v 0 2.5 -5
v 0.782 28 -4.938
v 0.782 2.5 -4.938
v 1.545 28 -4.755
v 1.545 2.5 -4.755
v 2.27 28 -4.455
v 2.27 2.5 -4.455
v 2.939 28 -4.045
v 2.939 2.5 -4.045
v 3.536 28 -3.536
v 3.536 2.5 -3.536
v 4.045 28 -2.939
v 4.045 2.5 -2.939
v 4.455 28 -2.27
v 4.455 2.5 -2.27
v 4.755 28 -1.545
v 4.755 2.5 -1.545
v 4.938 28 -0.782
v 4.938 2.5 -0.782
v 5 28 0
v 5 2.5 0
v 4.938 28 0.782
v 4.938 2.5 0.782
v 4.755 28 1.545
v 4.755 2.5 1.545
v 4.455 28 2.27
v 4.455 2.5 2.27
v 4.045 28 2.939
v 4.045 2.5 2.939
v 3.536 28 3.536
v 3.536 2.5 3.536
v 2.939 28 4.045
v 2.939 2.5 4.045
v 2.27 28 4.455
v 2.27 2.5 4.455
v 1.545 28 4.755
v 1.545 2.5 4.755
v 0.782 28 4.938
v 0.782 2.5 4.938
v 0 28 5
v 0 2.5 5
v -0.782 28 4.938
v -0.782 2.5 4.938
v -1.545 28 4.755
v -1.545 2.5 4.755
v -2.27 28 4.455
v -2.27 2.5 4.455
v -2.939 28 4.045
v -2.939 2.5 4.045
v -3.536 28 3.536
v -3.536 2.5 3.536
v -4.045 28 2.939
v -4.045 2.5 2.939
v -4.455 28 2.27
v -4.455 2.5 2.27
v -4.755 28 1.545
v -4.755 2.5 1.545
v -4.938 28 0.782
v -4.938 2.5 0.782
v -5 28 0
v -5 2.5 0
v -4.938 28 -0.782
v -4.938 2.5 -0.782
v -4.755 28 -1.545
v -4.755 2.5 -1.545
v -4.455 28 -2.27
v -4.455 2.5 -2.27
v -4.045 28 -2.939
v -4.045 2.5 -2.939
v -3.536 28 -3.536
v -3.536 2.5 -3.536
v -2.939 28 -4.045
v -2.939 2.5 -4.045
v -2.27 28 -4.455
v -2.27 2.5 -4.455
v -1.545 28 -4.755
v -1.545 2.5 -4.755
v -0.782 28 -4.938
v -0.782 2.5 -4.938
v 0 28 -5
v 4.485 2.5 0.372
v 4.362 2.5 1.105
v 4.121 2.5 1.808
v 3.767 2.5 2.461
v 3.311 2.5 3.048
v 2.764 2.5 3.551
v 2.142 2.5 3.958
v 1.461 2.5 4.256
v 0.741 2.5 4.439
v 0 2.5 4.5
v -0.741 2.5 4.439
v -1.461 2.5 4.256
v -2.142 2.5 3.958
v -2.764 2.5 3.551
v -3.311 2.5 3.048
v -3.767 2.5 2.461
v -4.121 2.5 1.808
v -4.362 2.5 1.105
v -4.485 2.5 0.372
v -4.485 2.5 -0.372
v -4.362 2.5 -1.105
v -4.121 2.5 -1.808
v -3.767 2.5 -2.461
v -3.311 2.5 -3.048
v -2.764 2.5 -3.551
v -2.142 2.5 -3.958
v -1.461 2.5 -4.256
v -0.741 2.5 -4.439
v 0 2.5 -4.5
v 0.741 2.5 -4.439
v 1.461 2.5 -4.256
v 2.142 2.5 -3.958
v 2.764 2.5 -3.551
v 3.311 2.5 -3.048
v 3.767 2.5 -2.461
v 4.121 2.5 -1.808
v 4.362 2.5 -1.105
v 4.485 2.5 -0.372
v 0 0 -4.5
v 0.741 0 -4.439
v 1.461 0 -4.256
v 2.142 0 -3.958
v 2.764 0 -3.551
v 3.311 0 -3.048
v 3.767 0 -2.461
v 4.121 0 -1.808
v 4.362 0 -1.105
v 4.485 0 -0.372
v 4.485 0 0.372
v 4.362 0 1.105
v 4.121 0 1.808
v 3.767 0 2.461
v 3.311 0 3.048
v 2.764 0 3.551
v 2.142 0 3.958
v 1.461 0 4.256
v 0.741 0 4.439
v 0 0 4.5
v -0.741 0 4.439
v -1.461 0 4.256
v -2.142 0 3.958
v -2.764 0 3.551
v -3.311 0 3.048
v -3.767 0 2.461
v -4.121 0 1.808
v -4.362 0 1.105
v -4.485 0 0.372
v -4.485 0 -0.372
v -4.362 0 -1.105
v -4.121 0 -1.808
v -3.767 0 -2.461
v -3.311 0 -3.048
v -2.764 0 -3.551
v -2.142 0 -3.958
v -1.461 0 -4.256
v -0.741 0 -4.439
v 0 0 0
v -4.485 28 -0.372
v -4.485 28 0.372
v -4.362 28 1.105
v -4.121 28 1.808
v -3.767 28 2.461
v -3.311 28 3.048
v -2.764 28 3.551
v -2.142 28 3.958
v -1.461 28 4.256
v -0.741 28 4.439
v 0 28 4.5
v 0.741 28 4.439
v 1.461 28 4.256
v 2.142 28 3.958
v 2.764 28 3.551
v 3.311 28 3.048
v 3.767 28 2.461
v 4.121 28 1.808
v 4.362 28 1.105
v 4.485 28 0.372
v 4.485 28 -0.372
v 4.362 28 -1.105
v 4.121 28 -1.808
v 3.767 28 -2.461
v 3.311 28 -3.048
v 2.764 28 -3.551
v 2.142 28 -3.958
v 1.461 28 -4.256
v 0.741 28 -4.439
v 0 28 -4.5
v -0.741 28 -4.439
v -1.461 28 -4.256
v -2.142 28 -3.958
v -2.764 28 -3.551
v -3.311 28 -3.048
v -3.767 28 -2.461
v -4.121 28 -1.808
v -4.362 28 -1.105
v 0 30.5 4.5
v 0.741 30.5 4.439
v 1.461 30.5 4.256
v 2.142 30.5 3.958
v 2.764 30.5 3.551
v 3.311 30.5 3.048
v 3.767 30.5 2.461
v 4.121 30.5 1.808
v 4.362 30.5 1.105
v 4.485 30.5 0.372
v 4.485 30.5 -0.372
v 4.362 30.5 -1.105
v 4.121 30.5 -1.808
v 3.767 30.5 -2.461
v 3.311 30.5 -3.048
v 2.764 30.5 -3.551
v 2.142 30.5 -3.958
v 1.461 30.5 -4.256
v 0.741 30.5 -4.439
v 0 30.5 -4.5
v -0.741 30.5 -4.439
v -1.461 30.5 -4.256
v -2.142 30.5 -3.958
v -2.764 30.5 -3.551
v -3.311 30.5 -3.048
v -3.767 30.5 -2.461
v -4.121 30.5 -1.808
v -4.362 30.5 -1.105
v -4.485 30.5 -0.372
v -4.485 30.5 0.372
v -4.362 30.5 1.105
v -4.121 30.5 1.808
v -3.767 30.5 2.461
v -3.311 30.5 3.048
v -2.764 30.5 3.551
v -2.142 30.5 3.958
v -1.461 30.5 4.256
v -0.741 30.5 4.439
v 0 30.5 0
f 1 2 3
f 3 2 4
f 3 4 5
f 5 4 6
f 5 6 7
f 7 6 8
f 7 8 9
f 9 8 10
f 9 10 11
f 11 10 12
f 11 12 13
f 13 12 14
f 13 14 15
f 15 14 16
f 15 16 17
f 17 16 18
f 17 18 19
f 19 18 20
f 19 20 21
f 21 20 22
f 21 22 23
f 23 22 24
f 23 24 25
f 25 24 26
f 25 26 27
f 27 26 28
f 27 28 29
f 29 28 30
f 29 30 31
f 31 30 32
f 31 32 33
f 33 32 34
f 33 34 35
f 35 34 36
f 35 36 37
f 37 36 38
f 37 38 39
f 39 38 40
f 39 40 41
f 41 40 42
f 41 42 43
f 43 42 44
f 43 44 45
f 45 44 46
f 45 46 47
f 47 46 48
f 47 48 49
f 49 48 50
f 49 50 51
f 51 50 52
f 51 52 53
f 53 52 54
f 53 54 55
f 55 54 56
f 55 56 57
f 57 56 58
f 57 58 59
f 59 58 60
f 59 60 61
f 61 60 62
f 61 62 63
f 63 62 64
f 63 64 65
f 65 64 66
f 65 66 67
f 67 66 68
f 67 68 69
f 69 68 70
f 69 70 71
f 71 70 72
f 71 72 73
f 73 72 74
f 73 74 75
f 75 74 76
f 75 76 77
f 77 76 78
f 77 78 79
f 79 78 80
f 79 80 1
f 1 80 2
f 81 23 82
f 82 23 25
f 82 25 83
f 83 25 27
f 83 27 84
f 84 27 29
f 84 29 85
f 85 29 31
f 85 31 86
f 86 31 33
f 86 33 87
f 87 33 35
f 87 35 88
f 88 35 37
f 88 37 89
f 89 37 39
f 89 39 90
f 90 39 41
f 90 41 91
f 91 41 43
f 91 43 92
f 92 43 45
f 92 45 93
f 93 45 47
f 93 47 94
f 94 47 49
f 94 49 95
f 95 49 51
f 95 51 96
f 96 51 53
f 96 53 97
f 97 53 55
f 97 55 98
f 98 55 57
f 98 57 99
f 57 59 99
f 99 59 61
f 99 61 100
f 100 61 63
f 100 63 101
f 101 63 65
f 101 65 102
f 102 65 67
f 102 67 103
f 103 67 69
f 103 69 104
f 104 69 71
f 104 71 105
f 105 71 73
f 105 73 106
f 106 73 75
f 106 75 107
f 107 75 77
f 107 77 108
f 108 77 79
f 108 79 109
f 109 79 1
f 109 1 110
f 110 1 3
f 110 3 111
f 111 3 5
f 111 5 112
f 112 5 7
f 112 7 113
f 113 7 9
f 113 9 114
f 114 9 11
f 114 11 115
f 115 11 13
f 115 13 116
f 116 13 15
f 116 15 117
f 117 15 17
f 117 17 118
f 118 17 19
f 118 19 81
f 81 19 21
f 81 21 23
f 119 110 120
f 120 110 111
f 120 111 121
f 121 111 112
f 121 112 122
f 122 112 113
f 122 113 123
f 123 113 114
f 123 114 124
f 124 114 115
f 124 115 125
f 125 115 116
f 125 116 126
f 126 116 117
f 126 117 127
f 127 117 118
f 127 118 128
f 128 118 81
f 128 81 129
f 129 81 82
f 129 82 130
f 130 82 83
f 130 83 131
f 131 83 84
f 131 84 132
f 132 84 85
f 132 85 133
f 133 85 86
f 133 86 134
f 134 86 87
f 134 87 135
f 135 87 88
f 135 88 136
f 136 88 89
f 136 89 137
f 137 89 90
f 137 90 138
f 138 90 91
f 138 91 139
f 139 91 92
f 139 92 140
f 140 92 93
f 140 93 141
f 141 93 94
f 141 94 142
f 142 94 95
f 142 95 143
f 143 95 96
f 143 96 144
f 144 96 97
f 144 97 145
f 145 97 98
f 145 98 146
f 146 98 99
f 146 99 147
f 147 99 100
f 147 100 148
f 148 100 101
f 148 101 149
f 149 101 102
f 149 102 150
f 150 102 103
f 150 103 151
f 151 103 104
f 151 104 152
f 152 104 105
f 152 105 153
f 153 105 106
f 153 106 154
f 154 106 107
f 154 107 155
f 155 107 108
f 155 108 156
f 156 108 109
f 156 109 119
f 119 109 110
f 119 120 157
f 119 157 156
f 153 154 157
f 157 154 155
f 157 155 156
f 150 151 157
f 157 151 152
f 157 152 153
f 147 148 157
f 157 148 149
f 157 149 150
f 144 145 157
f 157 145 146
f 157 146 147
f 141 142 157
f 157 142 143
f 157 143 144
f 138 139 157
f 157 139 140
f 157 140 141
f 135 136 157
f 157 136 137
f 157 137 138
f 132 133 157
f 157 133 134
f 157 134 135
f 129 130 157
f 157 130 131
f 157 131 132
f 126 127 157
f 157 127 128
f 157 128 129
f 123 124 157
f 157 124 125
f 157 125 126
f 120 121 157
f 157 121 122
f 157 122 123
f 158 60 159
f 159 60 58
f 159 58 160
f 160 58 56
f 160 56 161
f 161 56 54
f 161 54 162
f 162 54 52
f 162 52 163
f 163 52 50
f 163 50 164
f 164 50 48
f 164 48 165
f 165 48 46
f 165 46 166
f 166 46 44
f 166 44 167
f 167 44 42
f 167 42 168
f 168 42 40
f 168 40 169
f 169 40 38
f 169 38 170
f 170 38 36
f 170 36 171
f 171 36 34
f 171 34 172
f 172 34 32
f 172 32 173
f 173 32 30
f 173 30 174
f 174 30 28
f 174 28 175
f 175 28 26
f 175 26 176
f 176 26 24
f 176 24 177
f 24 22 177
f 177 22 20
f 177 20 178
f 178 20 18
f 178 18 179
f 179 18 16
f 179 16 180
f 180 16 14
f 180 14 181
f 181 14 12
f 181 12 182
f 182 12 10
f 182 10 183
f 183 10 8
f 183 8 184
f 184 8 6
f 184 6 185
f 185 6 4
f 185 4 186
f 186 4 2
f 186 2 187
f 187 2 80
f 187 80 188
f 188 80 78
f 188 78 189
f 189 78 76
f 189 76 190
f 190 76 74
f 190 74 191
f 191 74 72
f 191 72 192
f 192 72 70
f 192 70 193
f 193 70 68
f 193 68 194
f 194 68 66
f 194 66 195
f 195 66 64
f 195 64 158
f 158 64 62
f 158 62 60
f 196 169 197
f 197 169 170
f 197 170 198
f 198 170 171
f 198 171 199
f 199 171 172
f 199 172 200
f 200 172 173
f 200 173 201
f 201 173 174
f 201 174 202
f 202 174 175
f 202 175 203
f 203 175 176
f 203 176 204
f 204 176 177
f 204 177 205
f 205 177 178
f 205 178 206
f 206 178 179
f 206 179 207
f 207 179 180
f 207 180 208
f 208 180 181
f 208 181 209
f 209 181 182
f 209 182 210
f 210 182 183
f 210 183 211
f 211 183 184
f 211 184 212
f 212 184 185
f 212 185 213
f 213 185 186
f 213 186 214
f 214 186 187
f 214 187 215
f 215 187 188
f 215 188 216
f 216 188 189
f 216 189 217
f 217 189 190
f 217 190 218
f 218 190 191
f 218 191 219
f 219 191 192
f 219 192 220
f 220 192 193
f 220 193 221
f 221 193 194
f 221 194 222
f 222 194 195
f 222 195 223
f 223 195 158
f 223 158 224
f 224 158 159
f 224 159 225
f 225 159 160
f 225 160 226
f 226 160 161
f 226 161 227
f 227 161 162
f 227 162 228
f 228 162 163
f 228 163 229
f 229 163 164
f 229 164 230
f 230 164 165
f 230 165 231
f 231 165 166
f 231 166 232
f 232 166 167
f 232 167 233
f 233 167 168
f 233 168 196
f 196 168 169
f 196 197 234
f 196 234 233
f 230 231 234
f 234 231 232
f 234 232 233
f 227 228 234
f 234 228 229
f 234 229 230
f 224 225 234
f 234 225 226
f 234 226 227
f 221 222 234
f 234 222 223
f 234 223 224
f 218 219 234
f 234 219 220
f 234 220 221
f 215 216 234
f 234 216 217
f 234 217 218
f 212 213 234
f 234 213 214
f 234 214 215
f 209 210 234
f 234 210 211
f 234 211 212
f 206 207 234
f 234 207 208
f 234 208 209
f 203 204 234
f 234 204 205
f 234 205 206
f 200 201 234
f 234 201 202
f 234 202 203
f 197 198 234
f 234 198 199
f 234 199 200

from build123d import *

# Parameters (mm, degrees)
SKETCH1_R           = 5
BOSS_EXTRUDE1_DEPTH = 30.5
SKETCH24_R          = 5
SKETCH24_R_2        = 4.5
CUT_EXTRUDE3_DEPTH  = 2.5
SKETCH25_R          = 5
SKETCH25_R_2        = 4.5
CUT_EXTRUDE4_DEPTH  = 2.5


with BuildPart() as part:
    # Sketch1 → Boss-Extrude1 (new body)
    with BuildSketch(Plane(origin=(0, 0, 0), x_dir=(1, 0, 0), z_dir=(0, 1, 0))):
        Circle(SKETCH1_R)
    extrude(amount=BOSS_EXTRUDE1_DEPTH)

    # Sketch24 → Cut-Extrude3 (cut)
    with BuildSketch(Plane(origin=(0, 0, 0), x_dir=(-1, 0, 0), z_dir=(0, -1, 0))):
        Circle(SKETCH24_R)
        Circle(SKETCH24_R_2, mode=Mode.SUBTRACT)
    extrude(amount=-CUT_EXTRUDE3_DEPTH, mode=Mode.SUBTRACT)

    # Sketch25 → Cut-Extrude4 (cut)
    with BuildSketch(Plane(origin=(0, 30.5, 0), x_dir=(1, 0, 0), z_dir=(0, 1, 0))):
        Circle(SKETCH25_R)
        Circle(SKETCH25_R_2, mode=Mode.SUBTRACT)
    extrude(amount=-CUT_EXTRUDE4_DEPTH, mode=Mode.SUBTRACT)


solid = part.part
